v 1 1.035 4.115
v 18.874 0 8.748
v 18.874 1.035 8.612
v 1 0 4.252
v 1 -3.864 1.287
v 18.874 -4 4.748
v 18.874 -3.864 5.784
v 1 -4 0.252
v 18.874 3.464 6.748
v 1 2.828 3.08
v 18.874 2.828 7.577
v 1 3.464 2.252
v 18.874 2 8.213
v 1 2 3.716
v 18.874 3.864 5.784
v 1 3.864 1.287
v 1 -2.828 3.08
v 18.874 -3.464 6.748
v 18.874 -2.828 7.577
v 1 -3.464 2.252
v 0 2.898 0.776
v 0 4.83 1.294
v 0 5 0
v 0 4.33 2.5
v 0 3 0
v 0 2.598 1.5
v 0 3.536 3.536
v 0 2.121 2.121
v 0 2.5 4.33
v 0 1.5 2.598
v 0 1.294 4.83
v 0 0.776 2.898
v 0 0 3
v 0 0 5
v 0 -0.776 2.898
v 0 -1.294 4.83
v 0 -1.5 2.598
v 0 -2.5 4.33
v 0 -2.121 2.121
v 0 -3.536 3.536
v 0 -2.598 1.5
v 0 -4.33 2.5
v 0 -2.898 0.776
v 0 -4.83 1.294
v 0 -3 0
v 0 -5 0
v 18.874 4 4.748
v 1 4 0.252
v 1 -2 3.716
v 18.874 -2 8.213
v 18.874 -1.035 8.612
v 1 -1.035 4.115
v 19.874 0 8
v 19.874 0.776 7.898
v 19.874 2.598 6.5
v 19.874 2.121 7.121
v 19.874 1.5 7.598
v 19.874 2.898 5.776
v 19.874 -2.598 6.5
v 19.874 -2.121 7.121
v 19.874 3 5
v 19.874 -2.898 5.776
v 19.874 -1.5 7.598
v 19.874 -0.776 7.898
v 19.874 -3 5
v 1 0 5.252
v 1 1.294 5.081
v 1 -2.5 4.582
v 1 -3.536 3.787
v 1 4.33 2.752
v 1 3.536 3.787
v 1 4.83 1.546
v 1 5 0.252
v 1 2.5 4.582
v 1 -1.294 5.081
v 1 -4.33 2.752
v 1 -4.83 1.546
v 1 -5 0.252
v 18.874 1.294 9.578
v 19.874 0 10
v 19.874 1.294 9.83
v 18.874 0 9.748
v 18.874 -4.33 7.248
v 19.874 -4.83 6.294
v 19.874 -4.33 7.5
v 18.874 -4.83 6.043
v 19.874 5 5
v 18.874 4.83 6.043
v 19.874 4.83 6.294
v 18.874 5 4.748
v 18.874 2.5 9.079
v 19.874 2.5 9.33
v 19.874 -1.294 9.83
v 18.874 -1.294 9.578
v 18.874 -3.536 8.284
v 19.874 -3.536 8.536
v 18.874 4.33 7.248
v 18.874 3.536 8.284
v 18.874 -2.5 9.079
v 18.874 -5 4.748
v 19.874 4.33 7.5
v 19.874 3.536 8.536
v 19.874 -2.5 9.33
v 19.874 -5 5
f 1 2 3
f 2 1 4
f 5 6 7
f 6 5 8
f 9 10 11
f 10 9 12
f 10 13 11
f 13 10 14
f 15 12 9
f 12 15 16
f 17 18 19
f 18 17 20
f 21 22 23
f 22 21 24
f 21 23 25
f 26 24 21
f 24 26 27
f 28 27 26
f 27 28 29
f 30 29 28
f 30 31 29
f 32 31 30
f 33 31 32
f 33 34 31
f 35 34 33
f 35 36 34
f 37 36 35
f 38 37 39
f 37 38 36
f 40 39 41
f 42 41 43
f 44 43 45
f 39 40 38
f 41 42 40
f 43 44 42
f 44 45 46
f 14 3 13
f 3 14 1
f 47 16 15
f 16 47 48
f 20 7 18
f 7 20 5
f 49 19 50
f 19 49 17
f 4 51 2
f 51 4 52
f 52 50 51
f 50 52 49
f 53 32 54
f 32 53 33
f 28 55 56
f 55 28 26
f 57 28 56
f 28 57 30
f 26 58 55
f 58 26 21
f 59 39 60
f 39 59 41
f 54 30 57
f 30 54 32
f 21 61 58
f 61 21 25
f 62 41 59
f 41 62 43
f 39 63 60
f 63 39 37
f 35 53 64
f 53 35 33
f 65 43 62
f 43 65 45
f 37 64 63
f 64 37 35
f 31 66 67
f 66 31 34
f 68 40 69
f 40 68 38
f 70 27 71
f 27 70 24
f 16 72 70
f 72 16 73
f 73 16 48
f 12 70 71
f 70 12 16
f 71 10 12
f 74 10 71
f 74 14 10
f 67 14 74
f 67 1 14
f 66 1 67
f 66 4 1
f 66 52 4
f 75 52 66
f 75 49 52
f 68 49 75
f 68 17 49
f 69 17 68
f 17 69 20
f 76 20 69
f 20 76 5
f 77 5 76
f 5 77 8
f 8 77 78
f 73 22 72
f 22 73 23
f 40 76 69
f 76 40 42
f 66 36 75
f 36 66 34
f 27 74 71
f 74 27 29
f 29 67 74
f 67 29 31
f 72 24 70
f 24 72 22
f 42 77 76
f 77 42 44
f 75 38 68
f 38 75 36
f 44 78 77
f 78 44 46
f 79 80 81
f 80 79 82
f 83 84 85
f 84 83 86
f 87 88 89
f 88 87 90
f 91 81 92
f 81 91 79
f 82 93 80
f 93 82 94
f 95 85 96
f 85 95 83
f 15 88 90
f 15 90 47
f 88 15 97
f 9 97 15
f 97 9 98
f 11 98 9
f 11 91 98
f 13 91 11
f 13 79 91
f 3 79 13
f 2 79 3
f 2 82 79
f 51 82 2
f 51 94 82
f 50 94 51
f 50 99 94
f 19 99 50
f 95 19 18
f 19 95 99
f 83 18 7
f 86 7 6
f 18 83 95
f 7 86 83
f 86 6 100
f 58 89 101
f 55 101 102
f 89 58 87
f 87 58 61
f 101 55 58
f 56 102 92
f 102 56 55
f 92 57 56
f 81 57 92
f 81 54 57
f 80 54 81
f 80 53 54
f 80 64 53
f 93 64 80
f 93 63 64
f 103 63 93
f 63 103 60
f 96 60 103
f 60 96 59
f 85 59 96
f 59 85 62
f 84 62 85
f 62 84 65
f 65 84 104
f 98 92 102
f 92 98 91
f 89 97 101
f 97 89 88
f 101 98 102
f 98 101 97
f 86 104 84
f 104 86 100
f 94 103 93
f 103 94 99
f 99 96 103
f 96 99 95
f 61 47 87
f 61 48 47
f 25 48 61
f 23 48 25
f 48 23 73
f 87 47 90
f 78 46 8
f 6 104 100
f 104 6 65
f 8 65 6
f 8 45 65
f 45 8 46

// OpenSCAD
// file: ../build_environments.scad
// build_environments.scad: modules to build level sections
//

module pool(diameter=10.0, wall_height=2.0, step_width=3.0, connections=[])
{
    difference() {
        union() {
        difference() {
            cylinder(h=0.5,r1=diameter+step_width,r2=diameter+step_width,$fn=48);
            translate([0,0,-0.1])
                cylinder(h=0.7,r1=diameter,r2=diameter,$fn=48);
        }
        difference() {
            cylinder(h=wall_height,r1=diameter+step_width+1.0,r2=diameter+step_width+1.0,$fn=48);
            translate([0,0,-0.1])
                cylinder(h=wall_height+0.2,r1=diameter+step_width,r2=diameter+step_width,$fn=48);
        }
        }
    
        for (c = connections)
        {
            rotate([0,90,0]) {
                angle = atan2(c[1],c[0]);
                rotate([-angle,0,0]) {
                    cylinder(h=diameter+5.0,r1=c[2],r2=c[2],$fn=48);
                }
            }
        }
    }
}

module straight(length=10.0, width=2.0, dy1=0.0, dy2=0.0, dz=0.0)
{
    dims = [0, 0, 0, 0, 0, (dz/length)];
    matrix = [
        [ 1, dims[0], dims[1], 0 ],
        [ dims[2], 1, dims[4], 0 ],
        [ dims[5], dims[3], 1, 0 ],
        [ 0, 0, 0, 1 ]
    ];
    multmatrix(matrix)
    difference() {
        translate([dy1,0,0])
        union() {
            rotate([0,90,0]) {
                difference() {
                    cylinder(h=(length-dy1-dy2),r1=width+1.0,r2=width+1.0,$fn=24);
                    translate([0,0,-0.1])
                        cylinder(h=(length-dy1-dy2+0.2),r1=width,r2=width,$fn=24);
                }
                difference() {
                    cylinder(h=1.0,r1=width+2.0,r2=width+2.0,$fn=24);
                    translate([0,0,-0.1])
                        cylinder(h=1.2,r1=width,r2=width,$fn=24);
                }
                translate([0,0,(length-dy1-dy2)-1.0]) {
                    difference() {
                        cylinder(h=1.0,r1=width+2.0,r2=width+2.0,$fn=24);
                        translate([0,0,-0.1])
                            cylinder(h=1.2,r1=width,r2=width,$fn=24);
                    }
                }
            }
        }
        translate([0,0,-(2*width+4.0)/2])
            cube([3*length,3*length,2*width+4.0],center=true);
    }
}

module curve(p0=[0,0], center=[0,0], dir=1, angle=0.0, width=2.0)
{
    radius = sqrt((p0[0]-center[0])*(p0[0]-center[0]) + (p0[1]-center[1])*(p0[1]-center[1]));
    if (dir == 0) {
        difference() {
            rotate([0,0,-90])
            difference() {
                rotate_extrude(angle = angle, convexity = 10, $fn=32)
                    translate([radius, 0, 0])
                        circle(r = width+1.0,$fn=24);
                rotate([0,0,-1.0])
                    rotate_extrude(angle = angle+2.0, convexity = 10, $fn=32)
                        translate([radius, 0, 0])
                            circle(r = width,$fn=24);
            }
            translate([0,0,-(2*width+4.0)/2])
                cube([5*radius,5*radius,2*width+4.0],center=true);
        }
    }
    else {
        difference() {
            rotate([0,0,90])
            difference() {
                rotate_extrude(angle = -angle, convexity = 10, $fn=32)
                    translate([radius, 0, 0])
                        circle(r = width+1.0,$fn=24);
                rotate([0,0,1.0])
                    rotate_extrude(angle = -angle-2.0, convexity = 10, $fn=32)
                        translate([radius, 0, 0])
                            circle(r = width,$fn=24);
            }
            translate([0,0,-(2*width+4.0)/2])
                cube([5*radius,5*radius,2*width+4.0],center=true);
        }
    }

}

// test pool
//pool(diameter=12.0000, wall_height=3.0000, step_width=3.0000, connections=[[0.0000,-26.0000,2.0000], [23.6074,0.0000,2.0000]]);

// test straight, slope
//straight(length=26.0000, width=2.0000, dy1=11.8322, dy2=6.7082, dz=0.0000);
//straight(length=29.1549, width=12.0000, dy1=0.0000, dy2=0.0000, dz=-15.0000);

// test curve
//curve(p0=[23.6074, 0.0000], center=[23.6074, 5.0000], dir=0, angle=60.1011, width=2.0000);
//curve(p0=[33.6426, 12.4219], center=[37.9771, 9.9295], dir=1, angle=120.4627, width=2.0000);
// main file
use <../build_environments.scad>;
straight(length=19.8741, width=3.0000, dy1=0.0000, dy2=0.0000, dz=5.0000);
